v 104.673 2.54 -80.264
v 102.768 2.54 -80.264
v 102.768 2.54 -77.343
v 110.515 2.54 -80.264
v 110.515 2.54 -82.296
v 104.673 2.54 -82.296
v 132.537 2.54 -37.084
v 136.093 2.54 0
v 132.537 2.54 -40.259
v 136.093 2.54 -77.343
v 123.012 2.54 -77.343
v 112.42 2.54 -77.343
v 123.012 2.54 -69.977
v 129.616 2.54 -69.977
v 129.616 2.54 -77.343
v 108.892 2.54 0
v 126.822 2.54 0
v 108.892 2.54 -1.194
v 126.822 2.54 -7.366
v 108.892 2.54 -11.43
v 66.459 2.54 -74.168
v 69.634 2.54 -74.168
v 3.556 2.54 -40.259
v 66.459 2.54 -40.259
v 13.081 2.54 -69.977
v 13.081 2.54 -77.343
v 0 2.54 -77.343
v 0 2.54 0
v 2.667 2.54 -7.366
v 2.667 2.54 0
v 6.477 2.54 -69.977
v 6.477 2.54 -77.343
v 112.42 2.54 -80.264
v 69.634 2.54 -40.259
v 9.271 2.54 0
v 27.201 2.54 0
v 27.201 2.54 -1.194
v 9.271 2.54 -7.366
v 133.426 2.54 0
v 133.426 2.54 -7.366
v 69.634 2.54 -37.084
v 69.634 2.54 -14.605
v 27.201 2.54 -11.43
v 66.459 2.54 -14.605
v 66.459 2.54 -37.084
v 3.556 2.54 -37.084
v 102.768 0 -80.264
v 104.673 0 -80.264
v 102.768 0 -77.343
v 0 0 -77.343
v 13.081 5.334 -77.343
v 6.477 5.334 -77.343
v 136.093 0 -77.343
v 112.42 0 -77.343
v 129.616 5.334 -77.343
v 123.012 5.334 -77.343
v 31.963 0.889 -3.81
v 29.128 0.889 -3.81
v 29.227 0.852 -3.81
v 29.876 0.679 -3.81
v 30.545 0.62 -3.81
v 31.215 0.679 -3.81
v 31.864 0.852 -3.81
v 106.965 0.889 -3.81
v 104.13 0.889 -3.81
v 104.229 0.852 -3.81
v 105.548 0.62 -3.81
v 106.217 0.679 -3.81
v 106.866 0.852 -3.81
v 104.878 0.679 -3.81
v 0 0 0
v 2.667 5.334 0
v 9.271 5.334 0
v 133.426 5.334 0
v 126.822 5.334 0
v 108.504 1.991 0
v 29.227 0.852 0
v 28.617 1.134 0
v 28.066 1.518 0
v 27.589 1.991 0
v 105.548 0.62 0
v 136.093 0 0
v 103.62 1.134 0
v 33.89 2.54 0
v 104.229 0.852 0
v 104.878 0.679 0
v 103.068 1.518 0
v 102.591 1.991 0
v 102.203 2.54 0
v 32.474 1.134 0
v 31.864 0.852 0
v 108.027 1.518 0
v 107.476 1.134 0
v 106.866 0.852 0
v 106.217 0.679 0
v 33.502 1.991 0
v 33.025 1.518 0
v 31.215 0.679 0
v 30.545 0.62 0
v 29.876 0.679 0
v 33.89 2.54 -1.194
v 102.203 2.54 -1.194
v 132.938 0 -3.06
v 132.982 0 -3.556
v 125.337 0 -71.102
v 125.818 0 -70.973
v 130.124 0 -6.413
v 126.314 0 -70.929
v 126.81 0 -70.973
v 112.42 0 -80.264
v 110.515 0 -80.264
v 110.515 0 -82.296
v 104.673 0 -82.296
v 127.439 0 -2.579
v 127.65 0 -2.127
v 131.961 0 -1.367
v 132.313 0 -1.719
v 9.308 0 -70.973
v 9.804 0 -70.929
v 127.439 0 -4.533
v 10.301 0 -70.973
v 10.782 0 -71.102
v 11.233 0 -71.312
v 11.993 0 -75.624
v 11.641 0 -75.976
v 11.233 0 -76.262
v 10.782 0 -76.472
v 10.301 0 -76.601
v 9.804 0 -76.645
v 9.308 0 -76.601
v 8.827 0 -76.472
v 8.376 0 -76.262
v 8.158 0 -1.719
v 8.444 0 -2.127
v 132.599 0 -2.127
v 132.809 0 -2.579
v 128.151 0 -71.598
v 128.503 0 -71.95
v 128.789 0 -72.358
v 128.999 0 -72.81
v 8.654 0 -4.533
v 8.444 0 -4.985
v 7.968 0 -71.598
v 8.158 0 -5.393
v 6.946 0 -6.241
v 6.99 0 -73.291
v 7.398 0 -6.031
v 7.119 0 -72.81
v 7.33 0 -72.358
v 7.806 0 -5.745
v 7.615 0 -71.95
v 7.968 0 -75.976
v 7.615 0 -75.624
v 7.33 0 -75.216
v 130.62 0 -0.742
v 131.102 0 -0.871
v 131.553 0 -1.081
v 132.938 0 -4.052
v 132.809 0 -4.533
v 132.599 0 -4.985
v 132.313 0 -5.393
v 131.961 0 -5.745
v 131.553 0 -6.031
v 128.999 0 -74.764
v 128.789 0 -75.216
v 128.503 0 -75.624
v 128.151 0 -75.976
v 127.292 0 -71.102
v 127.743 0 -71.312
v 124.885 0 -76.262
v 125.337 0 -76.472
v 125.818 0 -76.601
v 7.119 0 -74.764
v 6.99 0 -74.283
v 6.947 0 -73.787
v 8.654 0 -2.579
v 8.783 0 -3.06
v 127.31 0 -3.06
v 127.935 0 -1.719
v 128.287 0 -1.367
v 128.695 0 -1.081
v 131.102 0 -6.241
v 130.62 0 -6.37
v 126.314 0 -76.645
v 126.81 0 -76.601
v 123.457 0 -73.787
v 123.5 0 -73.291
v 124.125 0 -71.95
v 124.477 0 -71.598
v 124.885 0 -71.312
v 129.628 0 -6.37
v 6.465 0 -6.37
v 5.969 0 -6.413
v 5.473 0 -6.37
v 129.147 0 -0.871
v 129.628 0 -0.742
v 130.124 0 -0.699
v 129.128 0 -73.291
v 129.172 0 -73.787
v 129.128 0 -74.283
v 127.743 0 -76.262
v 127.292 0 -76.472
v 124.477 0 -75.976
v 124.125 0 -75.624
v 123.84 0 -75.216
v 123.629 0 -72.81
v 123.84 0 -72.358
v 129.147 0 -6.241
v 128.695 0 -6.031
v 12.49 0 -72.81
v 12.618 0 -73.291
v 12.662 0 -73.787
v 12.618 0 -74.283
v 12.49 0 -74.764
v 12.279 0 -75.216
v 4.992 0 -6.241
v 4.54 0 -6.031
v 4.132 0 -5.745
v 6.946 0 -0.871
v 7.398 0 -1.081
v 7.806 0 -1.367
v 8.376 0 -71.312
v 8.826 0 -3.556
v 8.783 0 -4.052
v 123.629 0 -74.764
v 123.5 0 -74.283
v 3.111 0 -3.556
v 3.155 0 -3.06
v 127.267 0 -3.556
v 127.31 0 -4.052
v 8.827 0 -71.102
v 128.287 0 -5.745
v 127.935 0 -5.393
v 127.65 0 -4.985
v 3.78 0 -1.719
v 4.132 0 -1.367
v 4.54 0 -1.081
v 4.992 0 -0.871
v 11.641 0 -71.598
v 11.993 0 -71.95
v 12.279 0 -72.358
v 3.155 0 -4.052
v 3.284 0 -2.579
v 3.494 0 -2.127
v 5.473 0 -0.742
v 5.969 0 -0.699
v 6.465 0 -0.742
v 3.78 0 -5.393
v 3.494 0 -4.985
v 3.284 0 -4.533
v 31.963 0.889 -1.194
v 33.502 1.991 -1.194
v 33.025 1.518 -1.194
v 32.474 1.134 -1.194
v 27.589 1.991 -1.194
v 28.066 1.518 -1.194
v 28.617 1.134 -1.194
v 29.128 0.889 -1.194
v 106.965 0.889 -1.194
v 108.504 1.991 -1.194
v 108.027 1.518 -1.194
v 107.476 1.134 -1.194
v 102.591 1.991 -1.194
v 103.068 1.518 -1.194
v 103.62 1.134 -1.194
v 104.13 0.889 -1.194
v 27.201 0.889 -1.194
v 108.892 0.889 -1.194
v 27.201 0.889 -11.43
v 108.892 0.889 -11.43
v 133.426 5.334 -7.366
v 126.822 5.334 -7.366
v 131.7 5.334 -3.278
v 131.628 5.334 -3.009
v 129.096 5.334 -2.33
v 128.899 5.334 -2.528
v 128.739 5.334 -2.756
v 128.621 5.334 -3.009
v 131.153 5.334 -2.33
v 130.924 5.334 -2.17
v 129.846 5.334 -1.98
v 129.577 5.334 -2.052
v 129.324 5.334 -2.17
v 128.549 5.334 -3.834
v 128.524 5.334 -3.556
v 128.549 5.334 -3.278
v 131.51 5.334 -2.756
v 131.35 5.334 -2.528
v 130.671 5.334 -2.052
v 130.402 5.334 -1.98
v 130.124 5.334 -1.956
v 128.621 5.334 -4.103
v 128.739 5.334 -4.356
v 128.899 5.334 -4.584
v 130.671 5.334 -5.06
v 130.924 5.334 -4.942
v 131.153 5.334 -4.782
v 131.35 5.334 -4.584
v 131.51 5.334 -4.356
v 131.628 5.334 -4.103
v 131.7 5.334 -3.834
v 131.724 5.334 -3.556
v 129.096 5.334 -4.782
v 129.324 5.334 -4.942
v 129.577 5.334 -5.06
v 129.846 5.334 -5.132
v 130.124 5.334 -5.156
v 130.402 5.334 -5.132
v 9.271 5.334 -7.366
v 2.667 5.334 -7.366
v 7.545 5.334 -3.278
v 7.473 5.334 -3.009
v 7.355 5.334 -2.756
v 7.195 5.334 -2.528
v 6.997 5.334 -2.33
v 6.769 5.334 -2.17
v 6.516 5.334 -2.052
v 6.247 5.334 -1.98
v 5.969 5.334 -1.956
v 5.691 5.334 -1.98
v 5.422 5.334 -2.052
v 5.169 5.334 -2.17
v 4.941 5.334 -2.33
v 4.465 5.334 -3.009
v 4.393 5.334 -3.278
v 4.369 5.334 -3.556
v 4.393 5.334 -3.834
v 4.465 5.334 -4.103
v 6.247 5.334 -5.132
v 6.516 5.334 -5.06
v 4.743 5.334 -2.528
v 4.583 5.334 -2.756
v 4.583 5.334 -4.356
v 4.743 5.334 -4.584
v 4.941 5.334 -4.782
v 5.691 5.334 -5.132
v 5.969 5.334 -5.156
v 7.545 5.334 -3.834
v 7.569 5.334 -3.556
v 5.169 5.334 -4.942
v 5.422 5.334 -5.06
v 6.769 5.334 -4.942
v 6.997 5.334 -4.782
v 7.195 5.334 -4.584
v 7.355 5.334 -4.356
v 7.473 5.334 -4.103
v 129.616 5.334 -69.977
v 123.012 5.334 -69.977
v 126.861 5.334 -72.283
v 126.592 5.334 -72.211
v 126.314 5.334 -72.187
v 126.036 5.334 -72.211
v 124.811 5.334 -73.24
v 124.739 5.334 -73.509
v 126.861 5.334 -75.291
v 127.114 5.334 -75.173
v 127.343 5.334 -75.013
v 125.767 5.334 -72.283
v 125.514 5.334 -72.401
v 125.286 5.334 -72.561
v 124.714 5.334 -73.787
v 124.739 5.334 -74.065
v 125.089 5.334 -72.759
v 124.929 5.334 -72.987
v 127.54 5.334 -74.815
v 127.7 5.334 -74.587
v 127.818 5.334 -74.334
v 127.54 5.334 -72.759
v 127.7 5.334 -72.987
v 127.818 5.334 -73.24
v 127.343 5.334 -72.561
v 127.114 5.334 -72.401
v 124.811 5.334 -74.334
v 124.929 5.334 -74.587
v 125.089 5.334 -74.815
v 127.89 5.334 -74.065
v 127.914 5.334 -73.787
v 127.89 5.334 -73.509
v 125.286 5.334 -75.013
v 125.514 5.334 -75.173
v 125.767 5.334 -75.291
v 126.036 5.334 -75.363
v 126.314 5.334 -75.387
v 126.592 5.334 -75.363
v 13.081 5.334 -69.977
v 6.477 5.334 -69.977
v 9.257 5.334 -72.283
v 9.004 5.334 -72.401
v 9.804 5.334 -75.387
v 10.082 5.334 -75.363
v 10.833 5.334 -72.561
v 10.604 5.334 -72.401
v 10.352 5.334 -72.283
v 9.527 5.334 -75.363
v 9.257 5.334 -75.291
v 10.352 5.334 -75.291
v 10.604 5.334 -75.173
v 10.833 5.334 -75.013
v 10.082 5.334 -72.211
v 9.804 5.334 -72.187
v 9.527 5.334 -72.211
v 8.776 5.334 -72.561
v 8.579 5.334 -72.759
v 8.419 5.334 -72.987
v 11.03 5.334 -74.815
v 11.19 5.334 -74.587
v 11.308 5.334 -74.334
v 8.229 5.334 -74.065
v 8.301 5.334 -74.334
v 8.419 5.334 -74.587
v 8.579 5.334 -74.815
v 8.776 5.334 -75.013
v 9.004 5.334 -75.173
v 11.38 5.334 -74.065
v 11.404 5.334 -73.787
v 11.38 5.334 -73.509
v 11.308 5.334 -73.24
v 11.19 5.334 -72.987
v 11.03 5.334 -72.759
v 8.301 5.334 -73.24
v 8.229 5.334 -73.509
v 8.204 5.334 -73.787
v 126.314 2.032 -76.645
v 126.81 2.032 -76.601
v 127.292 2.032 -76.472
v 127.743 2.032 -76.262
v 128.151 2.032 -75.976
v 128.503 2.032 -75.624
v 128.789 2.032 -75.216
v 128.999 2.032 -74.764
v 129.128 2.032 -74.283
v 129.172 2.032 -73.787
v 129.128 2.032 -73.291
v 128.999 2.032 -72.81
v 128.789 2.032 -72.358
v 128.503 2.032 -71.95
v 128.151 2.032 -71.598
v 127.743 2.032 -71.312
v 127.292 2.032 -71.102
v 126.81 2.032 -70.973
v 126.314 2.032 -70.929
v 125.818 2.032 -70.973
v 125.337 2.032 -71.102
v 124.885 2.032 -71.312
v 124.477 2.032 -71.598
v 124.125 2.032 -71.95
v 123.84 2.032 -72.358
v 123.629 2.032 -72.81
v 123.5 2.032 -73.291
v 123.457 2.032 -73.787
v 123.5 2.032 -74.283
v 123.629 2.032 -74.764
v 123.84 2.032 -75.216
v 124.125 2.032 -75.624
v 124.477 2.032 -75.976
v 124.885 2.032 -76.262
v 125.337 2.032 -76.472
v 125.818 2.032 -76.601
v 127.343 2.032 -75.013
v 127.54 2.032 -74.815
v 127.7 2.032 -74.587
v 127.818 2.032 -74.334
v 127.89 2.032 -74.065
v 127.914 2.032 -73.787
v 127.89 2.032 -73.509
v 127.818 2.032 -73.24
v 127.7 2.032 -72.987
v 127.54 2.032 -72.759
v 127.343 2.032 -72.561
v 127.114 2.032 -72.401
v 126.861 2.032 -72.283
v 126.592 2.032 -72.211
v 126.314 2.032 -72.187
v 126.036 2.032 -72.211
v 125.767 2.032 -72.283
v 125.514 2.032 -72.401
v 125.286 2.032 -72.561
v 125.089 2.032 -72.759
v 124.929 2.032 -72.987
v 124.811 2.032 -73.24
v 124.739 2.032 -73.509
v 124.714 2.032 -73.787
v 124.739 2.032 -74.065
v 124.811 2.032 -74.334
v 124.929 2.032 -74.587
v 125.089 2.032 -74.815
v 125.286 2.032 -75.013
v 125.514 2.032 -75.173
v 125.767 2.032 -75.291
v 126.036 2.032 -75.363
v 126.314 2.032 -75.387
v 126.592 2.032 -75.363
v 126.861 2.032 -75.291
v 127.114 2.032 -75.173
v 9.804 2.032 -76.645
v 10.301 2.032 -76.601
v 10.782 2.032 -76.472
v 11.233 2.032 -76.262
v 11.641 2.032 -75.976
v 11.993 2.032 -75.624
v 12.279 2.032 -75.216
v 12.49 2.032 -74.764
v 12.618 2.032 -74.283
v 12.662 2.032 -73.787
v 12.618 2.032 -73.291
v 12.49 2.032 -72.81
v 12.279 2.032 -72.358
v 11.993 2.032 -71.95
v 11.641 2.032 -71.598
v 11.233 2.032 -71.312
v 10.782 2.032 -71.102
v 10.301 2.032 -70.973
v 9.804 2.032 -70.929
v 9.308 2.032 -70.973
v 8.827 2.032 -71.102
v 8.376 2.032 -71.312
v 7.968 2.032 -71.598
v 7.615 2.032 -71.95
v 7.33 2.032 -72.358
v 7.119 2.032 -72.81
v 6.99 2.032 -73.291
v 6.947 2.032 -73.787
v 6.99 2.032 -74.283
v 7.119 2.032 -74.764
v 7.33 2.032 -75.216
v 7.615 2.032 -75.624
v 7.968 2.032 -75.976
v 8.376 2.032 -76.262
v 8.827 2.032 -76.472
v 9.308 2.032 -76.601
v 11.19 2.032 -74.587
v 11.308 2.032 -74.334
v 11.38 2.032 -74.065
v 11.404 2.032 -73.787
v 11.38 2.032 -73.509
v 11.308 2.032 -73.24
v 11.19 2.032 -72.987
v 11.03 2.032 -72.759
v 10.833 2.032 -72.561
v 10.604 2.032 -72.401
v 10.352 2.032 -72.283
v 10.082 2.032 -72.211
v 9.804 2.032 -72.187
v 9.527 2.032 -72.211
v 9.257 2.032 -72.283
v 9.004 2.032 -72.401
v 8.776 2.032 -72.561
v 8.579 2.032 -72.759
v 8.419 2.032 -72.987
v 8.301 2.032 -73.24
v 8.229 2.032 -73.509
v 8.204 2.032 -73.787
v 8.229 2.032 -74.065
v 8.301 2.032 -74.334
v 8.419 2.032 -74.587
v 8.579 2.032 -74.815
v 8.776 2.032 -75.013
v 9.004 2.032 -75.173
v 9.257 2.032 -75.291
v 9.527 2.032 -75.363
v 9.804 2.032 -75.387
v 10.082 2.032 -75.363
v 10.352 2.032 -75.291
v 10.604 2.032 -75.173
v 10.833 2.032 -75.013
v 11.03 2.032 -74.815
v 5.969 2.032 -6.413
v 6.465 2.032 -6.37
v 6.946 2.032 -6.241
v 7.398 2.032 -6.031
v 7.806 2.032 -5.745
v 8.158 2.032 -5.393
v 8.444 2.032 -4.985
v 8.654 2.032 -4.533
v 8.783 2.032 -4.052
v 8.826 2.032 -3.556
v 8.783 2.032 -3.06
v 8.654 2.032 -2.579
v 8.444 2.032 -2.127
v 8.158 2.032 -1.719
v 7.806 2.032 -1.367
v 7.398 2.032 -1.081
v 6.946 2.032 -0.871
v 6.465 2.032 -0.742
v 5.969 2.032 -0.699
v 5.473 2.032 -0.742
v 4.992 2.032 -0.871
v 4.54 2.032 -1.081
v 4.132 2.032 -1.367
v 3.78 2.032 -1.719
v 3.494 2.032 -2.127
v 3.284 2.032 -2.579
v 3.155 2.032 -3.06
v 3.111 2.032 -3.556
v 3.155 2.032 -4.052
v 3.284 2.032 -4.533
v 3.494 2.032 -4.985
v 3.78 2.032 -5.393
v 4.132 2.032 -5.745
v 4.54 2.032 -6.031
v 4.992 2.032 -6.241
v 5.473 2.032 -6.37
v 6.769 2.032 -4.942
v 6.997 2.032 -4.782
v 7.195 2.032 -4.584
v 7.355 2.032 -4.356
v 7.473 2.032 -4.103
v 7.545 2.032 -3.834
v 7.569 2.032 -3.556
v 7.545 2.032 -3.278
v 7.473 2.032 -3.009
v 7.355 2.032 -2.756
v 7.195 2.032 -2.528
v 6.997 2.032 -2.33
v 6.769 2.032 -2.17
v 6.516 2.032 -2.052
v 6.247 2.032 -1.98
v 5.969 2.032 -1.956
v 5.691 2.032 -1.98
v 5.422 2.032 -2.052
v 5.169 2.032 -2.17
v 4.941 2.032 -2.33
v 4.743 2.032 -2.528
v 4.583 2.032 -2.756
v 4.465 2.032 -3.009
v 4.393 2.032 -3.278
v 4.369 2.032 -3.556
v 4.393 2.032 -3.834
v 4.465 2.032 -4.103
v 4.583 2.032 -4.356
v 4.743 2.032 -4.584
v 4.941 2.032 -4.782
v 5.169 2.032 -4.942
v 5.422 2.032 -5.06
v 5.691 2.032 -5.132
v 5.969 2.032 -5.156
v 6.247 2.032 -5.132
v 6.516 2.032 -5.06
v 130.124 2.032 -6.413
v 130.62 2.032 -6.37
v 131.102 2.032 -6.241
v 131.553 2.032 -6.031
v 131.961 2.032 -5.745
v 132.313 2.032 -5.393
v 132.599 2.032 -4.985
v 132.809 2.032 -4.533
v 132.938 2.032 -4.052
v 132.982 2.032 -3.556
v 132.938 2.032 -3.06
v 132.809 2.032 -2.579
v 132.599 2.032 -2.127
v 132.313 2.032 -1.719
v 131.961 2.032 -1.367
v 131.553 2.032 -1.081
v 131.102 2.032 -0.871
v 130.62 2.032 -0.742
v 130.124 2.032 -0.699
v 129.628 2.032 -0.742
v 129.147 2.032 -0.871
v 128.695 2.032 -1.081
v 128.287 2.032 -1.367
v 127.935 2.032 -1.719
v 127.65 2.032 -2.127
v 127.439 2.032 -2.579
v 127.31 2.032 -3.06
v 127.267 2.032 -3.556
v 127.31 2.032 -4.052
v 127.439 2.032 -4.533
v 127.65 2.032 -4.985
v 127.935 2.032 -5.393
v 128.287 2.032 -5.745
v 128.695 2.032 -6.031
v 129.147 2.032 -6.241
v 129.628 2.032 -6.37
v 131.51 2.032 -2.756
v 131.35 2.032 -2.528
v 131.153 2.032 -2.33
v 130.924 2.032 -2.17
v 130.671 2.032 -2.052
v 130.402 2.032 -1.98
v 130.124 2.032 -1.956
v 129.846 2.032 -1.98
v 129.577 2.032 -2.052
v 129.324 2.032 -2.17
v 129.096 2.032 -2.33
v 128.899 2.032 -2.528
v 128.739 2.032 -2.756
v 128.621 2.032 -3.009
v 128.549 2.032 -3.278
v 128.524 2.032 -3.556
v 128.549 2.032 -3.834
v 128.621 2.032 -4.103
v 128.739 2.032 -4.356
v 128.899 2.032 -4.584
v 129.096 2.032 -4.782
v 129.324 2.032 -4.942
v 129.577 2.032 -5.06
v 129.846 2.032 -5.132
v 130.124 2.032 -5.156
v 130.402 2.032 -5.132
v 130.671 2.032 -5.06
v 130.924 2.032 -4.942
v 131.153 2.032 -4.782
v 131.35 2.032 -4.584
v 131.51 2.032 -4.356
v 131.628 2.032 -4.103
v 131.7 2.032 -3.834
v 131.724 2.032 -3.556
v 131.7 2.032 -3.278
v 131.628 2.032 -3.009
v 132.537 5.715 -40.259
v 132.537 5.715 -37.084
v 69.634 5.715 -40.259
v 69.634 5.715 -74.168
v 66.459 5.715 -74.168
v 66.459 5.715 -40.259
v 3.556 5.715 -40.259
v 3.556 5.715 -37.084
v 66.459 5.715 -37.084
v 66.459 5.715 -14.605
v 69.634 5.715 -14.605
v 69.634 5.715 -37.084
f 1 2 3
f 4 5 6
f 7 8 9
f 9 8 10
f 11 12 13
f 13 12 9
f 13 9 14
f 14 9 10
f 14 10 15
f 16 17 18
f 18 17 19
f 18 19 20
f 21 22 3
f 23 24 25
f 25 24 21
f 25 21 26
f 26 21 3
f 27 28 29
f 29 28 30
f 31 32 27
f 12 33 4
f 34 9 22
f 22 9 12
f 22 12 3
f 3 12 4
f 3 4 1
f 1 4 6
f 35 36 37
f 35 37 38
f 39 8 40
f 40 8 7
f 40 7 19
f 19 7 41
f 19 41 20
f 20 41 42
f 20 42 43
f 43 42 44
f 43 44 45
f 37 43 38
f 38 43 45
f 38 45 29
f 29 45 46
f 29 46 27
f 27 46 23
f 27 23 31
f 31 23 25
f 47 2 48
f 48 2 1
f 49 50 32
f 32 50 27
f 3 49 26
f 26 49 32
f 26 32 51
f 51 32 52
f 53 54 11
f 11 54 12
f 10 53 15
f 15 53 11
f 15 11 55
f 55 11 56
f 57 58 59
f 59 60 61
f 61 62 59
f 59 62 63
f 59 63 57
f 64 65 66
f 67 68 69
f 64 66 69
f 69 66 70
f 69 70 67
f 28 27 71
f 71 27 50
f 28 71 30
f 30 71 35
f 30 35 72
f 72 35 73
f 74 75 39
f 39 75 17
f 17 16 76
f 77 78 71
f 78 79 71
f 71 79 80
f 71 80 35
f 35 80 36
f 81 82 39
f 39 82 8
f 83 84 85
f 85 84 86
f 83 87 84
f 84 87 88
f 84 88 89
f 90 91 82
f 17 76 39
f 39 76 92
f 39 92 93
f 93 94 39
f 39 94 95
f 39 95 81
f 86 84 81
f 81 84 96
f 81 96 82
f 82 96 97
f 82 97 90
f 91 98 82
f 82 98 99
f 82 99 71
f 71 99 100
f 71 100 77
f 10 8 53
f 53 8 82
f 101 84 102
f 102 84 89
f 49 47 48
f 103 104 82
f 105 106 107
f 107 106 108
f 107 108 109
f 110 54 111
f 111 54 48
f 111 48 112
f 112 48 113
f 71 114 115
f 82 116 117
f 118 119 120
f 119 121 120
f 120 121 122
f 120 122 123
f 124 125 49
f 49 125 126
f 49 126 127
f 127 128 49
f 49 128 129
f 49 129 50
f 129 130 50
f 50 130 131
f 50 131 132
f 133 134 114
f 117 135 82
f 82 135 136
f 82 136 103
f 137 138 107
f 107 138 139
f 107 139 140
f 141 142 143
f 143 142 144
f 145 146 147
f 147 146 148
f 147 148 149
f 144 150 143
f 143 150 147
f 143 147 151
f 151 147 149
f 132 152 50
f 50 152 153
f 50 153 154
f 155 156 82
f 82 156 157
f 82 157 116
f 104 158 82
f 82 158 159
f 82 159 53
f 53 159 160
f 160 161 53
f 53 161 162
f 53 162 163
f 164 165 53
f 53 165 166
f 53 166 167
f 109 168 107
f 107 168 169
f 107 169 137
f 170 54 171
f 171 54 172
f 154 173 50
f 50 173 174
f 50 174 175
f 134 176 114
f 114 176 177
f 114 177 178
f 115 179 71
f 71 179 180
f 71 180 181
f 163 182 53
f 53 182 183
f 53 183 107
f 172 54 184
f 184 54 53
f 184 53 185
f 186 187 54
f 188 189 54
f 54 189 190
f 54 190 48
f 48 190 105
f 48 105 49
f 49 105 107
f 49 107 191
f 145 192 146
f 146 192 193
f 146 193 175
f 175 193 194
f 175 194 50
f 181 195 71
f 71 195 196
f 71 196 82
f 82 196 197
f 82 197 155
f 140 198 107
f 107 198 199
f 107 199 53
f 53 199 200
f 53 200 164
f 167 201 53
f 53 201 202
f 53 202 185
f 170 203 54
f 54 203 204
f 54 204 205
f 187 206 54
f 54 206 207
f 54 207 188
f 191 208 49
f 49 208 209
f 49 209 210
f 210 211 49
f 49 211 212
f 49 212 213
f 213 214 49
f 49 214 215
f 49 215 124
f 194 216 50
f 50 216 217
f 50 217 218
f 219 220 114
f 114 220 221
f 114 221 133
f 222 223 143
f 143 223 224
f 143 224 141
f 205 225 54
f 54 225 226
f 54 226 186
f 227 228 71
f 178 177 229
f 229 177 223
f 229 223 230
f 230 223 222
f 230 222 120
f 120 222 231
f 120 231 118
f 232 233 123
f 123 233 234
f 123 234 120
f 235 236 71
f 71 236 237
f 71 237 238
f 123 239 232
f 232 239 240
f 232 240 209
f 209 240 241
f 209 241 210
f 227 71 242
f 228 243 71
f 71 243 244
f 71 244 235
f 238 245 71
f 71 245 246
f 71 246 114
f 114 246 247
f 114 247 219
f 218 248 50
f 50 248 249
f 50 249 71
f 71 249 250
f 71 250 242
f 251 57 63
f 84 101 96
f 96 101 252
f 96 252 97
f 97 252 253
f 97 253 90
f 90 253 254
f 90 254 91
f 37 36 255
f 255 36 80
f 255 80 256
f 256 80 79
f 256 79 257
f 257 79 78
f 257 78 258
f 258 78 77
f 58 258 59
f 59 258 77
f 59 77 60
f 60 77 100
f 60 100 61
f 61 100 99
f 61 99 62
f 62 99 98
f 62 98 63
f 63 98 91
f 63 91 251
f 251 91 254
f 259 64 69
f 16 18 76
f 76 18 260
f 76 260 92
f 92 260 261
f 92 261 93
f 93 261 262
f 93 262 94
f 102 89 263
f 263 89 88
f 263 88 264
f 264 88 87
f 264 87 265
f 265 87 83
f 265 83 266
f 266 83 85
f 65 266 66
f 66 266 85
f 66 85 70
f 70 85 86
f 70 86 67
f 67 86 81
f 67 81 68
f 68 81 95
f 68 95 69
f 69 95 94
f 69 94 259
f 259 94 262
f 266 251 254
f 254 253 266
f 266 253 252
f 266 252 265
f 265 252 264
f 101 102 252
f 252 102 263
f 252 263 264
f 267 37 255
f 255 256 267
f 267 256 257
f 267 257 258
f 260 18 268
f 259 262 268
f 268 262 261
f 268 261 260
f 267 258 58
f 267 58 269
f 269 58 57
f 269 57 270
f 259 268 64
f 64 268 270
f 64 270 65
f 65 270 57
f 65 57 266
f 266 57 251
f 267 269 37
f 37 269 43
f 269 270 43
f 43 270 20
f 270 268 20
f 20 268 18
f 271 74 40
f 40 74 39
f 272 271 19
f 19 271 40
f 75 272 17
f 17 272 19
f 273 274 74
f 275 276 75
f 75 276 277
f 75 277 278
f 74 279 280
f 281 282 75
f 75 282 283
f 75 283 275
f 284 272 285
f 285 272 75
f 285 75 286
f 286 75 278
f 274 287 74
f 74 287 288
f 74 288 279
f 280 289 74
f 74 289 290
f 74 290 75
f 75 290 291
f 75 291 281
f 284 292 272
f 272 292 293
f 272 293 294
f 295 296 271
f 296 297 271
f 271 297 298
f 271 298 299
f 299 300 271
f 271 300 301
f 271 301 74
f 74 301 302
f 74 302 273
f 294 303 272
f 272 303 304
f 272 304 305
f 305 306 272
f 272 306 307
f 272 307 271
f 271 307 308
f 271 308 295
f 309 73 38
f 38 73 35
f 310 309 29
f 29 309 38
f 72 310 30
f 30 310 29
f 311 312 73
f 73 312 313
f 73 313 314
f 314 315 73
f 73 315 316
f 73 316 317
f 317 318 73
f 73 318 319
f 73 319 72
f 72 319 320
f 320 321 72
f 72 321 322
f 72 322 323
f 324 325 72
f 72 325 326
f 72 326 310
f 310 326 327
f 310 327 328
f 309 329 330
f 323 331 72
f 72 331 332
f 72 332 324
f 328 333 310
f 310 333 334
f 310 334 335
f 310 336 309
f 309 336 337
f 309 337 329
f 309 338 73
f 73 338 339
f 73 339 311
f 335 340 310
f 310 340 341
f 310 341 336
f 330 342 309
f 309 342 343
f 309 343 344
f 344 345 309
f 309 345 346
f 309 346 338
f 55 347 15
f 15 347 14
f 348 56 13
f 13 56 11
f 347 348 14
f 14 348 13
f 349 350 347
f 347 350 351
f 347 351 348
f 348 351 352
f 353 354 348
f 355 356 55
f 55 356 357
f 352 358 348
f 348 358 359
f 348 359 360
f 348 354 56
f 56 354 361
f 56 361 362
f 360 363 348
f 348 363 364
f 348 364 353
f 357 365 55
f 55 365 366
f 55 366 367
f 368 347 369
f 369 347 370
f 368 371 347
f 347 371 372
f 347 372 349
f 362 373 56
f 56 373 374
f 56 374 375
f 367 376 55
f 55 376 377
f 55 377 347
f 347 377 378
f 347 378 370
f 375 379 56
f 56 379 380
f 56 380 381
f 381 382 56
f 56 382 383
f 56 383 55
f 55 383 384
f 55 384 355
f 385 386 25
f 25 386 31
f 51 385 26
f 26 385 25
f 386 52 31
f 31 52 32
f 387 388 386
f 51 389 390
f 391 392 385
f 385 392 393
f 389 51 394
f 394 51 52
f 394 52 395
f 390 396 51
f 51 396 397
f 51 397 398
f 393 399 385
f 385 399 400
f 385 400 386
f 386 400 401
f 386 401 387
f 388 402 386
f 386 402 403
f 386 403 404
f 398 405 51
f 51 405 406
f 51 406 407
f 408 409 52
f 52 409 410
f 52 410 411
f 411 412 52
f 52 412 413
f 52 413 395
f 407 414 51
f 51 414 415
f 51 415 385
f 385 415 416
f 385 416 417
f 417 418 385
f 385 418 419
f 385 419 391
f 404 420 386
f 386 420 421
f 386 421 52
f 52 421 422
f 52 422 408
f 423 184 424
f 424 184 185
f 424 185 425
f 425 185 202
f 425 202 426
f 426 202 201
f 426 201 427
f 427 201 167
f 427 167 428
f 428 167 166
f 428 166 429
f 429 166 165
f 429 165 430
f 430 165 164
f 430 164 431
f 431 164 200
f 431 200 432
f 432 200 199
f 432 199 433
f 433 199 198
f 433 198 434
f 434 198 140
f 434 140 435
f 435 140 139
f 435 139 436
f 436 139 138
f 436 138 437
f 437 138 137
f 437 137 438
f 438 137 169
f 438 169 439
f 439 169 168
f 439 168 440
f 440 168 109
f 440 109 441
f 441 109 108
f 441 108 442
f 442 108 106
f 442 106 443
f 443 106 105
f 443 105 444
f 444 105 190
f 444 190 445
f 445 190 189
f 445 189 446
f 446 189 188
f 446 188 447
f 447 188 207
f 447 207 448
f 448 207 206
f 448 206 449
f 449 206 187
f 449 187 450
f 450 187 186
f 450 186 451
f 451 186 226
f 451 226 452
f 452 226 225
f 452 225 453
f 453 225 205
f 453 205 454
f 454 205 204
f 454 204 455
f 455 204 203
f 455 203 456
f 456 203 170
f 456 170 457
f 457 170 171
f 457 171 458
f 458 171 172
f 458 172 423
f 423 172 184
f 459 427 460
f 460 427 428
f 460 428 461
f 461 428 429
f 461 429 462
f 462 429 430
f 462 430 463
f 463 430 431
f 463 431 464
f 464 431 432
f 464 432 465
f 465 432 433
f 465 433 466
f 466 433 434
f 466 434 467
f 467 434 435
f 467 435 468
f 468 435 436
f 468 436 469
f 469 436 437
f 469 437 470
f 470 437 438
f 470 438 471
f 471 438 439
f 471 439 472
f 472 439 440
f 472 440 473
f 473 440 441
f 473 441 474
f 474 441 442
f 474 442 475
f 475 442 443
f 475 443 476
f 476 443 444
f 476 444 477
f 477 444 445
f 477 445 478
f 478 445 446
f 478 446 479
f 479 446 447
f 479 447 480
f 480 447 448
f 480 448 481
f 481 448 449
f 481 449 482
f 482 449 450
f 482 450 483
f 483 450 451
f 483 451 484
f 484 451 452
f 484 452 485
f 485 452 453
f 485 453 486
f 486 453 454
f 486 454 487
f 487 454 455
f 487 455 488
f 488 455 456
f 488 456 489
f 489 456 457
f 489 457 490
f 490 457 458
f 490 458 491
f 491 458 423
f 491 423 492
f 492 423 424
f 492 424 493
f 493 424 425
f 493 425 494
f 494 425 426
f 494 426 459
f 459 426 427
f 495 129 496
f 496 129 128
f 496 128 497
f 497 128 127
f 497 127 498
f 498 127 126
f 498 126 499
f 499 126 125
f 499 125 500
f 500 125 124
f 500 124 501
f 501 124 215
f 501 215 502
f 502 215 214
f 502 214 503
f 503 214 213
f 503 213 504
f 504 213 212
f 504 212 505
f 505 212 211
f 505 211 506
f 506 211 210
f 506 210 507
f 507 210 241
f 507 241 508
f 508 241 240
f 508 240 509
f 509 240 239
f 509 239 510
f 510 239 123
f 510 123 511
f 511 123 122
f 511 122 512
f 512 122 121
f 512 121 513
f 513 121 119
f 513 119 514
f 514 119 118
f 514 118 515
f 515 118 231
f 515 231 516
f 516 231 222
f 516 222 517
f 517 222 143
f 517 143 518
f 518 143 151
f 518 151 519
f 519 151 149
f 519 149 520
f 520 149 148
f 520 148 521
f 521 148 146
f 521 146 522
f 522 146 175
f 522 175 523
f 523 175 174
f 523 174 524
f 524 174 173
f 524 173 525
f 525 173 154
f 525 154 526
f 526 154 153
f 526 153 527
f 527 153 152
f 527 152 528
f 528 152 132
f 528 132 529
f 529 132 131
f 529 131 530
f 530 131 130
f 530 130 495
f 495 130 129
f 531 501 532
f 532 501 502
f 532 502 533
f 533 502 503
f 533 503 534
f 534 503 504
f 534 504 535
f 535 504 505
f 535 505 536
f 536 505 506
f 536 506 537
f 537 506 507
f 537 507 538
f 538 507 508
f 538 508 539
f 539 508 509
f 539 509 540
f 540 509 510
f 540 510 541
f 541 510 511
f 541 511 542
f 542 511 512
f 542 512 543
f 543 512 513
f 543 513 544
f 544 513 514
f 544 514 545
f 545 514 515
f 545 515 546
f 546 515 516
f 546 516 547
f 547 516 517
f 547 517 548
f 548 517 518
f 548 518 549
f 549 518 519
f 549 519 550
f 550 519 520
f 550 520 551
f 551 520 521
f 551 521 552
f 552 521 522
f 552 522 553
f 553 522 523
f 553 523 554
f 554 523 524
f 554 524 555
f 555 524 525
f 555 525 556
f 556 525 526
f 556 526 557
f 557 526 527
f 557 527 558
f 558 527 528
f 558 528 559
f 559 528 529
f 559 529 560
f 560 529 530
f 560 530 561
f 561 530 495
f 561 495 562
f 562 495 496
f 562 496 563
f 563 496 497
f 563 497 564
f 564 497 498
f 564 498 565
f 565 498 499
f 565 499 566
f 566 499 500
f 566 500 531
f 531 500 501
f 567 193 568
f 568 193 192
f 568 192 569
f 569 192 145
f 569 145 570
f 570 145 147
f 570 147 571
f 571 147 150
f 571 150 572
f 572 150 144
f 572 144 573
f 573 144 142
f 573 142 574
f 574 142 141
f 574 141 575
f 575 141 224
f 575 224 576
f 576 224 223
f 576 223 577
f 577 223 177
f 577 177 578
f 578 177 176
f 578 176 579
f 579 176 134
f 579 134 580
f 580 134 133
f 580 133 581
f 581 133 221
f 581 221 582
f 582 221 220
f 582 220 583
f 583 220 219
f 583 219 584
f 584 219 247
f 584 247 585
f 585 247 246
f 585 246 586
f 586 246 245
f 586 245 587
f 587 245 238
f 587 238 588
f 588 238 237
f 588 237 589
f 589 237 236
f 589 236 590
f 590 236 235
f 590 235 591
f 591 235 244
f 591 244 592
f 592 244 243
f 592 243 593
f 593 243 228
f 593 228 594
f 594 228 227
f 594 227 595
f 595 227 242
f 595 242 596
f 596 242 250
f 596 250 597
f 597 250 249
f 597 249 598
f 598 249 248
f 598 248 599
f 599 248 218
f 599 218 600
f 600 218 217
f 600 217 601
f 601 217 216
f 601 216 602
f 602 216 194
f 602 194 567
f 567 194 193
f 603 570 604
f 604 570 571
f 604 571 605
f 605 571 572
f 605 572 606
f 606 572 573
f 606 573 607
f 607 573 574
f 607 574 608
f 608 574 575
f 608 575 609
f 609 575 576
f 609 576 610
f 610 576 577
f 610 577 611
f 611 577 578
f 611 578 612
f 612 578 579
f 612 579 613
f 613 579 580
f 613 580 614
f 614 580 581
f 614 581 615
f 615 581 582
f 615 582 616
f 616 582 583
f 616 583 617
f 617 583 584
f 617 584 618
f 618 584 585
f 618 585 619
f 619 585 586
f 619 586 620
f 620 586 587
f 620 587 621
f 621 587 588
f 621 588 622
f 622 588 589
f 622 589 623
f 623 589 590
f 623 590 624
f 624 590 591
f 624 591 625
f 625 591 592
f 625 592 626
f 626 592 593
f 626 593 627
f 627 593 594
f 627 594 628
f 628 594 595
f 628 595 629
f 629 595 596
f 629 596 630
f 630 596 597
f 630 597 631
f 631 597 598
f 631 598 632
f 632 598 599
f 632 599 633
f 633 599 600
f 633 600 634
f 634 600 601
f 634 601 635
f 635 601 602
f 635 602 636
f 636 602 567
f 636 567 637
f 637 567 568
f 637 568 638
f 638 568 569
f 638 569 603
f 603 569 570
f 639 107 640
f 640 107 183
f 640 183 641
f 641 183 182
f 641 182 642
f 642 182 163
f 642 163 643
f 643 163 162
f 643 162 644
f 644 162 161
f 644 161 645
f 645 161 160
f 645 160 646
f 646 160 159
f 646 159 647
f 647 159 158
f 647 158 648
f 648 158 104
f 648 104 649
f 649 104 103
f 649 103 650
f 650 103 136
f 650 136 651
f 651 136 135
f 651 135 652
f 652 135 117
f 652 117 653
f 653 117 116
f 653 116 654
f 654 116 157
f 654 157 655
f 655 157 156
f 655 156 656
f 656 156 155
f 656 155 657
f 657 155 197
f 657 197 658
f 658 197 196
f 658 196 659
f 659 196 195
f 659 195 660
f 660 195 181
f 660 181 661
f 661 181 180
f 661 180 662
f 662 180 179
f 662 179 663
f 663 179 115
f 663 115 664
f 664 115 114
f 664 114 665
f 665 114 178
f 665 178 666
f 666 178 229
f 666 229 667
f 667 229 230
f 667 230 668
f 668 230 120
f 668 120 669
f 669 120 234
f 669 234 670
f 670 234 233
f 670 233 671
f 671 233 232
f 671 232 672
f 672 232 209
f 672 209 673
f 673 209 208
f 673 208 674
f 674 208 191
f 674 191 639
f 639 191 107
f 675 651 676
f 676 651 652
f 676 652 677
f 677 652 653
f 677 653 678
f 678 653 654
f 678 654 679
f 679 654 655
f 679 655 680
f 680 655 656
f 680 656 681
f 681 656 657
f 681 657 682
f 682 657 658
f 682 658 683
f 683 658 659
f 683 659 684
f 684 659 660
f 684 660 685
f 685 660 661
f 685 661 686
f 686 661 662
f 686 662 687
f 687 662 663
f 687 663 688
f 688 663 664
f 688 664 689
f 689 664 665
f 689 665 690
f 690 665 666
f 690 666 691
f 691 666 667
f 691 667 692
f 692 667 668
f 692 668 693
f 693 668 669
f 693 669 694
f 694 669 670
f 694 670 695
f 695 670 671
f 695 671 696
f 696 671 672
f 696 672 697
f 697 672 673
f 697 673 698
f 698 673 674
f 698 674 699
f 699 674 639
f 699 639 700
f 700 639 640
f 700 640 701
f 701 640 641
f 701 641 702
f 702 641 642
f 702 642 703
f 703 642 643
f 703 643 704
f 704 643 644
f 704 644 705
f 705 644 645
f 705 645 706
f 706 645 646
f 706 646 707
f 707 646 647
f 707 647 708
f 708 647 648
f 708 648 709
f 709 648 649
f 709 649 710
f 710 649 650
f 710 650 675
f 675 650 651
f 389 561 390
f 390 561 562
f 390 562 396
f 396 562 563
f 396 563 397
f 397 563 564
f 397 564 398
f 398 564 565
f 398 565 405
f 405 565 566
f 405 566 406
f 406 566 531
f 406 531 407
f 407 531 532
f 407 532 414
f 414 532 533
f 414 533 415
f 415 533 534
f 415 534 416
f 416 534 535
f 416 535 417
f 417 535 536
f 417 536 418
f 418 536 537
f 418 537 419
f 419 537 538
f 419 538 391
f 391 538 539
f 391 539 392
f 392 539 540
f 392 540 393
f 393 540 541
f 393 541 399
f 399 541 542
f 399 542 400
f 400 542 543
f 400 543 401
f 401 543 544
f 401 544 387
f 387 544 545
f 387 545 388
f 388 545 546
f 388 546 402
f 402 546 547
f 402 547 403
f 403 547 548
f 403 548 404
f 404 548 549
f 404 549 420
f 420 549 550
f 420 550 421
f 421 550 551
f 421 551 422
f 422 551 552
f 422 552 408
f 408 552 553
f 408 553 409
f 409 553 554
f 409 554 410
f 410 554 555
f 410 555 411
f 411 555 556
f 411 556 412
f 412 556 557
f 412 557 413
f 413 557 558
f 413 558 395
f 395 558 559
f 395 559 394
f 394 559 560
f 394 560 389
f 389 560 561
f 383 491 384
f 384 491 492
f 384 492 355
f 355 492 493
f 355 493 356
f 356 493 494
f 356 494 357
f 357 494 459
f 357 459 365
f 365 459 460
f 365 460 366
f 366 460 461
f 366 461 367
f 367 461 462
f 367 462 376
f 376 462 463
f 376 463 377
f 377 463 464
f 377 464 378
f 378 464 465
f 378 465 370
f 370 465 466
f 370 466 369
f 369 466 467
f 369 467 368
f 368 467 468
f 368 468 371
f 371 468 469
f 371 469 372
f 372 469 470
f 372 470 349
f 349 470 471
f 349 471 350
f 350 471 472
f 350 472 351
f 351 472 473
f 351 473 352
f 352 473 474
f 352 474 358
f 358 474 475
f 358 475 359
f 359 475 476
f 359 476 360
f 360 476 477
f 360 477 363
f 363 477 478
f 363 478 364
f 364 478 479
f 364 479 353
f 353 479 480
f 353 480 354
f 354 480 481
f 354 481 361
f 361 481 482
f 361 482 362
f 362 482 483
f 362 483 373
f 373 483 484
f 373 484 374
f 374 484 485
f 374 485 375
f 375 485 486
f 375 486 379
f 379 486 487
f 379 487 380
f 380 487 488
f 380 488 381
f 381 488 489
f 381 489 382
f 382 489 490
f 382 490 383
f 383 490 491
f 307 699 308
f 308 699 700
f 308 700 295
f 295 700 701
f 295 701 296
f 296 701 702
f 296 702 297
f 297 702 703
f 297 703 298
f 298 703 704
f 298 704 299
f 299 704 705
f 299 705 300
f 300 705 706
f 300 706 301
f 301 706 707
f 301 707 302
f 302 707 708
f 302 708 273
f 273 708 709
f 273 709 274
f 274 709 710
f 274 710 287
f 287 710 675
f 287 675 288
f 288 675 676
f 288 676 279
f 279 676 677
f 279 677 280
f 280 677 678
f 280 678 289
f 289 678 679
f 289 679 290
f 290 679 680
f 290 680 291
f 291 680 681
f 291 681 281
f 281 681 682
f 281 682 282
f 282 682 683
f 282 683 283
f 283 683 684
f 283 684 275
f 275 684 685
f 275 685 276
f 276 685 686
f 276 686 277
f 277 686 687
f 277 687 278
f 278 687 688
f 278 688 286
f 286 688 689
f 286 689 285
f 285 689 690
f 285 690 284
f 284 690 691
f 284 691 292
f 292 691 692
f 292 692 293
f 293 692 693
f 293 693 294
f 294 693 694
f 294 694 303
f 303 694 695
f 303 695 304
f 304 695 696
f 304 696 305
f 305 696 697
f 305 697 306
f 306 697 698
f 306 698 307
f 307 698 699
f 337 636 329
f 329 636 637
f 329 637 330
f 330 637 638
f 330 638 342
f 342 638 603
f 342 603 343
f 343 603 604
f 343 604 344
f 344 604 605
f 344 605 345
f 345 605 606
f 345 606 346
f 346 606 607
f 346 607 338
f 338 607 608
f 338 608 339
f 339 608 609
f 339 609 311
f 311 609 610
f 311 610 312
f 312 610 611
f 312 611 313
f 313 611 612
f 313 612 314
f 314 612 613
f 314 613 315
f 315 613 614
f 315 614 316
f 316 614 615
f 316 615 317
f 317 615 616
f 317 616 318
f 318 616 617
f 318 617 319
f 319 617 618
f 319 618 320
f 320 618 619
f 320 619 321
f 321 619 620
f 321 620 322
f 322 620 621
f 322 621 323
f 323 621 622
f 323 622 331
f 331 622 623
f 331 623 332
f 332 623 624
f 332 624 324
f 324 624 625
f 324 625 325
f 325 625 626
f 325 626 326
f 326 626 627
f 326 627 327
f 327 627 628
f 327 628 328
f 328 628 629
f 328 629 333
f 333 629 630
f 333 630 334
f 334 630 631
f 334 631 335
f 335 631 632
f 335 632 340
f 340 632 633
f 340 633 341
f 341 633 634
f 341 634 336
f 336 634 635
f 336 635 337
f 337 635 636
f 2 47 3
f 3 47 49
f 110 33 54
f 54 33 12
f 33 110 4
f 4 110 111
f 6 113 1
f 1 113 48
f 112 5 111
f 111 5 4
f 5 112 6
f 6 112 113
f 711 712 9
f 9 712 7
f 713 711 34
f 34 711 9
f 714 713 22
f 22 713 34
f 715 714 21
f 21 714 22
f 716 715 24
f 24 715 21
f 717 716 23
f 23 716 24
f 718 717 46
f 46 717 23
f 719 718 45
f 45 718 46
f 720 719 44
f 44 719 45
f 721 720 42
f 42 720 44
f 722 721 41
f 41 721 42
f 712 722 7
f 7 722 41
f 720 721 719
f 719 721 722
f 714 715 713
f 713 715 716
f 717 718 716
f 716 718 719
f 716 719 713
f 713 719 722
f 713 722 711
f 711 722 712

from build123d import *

# Parameters (mm, degrees)
SKETCH1_W            = 136.0932
SKETCH1_H            = 77.343
BOSS_EXTRUDE1_DEPTH  = 2.54
SKETCH2_R            = 3.8735
CUT_EXTRUDE1_DEPTH   = 3.81
SKETCH3_W            = 81.691378436
SKETCH3_H            = 10.2362
CUT_EXTRUDE2_DEPTH   = 1.651
SKETCH4_W            = 6.604
SKETCH4_H            = 7.366
BOSS_EXTRUDE4_DEPTH  = 2.794
SKETCH5_R            = 2.8575
CUT_EXTRUDE3_DEPTH   = 2.032
M3_CLEARANCE_HOLE1_D = 3.2
SKETCH9_W            = 9.652
SKETCH9_H            = 2.54
BOSS_EXTRUDE5_DEPTH  = 2.921
SKETCH10_W           = 5.842
SKETCH10_H           = 2.54
BOSS_EXTRUDE6_DEPTH  = 2.032
BOSS_EXTRUDE7_DEPTH  = 3.175


with BuildPart() as part:
    # Sketch1 → Boss-Extrude1 (new body)
    with BuildSketch(Plane(origin=(0, 0, 0), x_dir=(1, 0, 0), z_dir=(0, 1, 0))):
        with Locations((68.0466, 38.6715)):
            Rectangle(SKETCH1_W, SKETCH1_H)
    extrude(amount=BOSS_EXTRUDE1_DEPTH)

    # Sketch2 → Cut-Extrude1 (cut)
    with BuildSketch(Plane.XY):
        with Locations((105.5477, 4.4939)):
            Circle(SKETCH2_R)
        with Locations((30.5455, 4.4939)):
            Circle(SKETCH2_R)
    extrude(amount=-CUT_EXTRUDE1_DEPTH, mode=Mode.SUBTRACT)

    # Sketch3 → Cut-Extrude2 (cut)
    with BuildSketch(Plane(origin=(0, 2.54, 0), x_dir=(1, 0, 0), z_dir=(0, 1, 0))):
        with Locations((68.0466, 6.3119)):
            Rectangle(SKETCH3_W, SKETCH3_H)
    extrude(amount=-CUT_EXTRUDE2_DEPTH, mode=Mode.SUBTRACT)

    # Sketch4 → Boss-Extrude4 (add)
    with BuildSketch(Plane(origin=(0, 2.54, 0), x_dir=(1, 0, 0), z_dir=(0, 1, 0))):
        with Locations((130.1242, 3.683)):
            Rectangle(SKETCH4_W, SKETCH4_H)
        with Locations((5.969, 3.683)):
            Rectangle(SKETCH4_W, SKETCH4_H)
        with Locations((126.3142, 73.66)):
            Rectangle(SKETCH4_W, SKETCH4_H)
        with Locations((9.779, 73.66)):
            Rectangle(SKETCH4_W, SKETCH4_H)
    extrude(amount=BOSS_EXTRUDE4_DEPTH)

    # Sketch5 → Cut-Extrude3 (cut)
    with BuildSketch(Plane(origin=(0, 0, 0), x_dir=(-1, 0, 0), z_dir=(0, -1, 0))):
        with Locations((-126.3142, 73.787)):
            Circle(SKETCH5_R)
        with Locations((-9.8044, 73.787)):
            Circle(SKETCH5_R)
        with Locations((-5.969, 3.556)):
            Circle(SKETCH5_R)
        with Locations((-130.1242, 3.556)):
            Circle(SKETCH5_R)
    extrude(amount=-CUT_EXTRUDE3_DEPTH, mode=Mode.SUBTRACT)

    # M3 Clearance Hole1 (through all)
    with Locations(Plane(origin=(0, 2.032, 0), x_dir=(-1, 0, 0), z_dir=(0, -1, 0))):
        with Locations((-5.969, 3.556), (-130.1242, 3.556), (-126.3142, 73.787), (-9.8044, 73.787)):
            Hole(M3_CLEARANCE_HOLE1_D / 2)

    # Sketch9 → Boss-Extrude5 (add)
    with BuildSketch(Plane(origin=(0, 0, -77.343), x_dir=(-1, 0, 0), z_dir=(0, 0, -1))):
        with Locations((-107.5944, 1.27)):
            Rectangle(SKETCH9_W, SKETCH9_H)
    extrude(amount=BOSS_EXTRUDE5_DEPTH)

    # Sketch10 → Boss-Extrude6 (add)
    with BuildSketch(Plane(origin=(0, 0, -80.264), x_dir=(-1, 0, 0), z_dir=(0, 0, -1))):
        with Locations((-107.5944, 1.27)):
            Rectangle(SKETCH10_W, SKETCH10_H)
    extrude(amount=BOSS_EXTRUDE6_DEPTH)

    # Sketch11 → Boss-Extrude7 (add)
    with BuildSketch(Plane(origin=(0, 2.54, 0), x_dir=(1, 0, 0), z_dir=(0, 1, 0))):
        Polygon((132.5372, 37.084), (69.6341, 37.084), (69.6341, 14.605), (66.4591, 14.605), (66.4591, 37.084), (3.556, 37.084), (3.556, 40.259), (66.4591, 40.259), (66.4591, 74.168), (69.6341, 74.168), (69.6341, 40.259), (132.5372, 40.259), align=None)
    extrude(amount=BOSS_EXTRUDE7_DEPTH)


solid = part.part
